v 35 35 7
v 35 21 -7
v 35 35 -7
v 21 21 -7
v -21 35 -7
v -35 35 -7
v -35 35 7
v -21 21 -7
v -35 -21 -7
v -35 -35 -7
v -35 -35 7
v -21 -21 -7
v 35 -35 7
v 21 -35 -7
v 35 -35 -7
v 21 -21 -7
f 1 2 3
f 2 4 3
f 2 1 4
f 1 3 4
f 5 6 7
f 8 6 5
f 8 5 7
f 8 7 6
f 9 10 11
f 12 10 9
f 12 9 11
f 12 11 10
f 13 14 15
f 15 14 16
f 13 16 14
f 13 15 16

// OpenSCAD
// file: def.scad
block_size_3 = 19;
block_size_4 = 16;
block_size_5 = 14;
block_size_6 = 12.5;
block_size_7 = 11;
block_size_8 = 10;

inf = 1000;

round_radius = 1;
sticker_margin = 2.5;
sticker_round_radius = 0.75;

module _block(size) {
    minkowski() {
        cube([size - round_radius * 2, size - round_radius * 2, size - round_radius * 2], center = true);
        sphere(r = round_radius, $fn = 24);
    }
}

module _selector_0(size) {
    cube([size - 0.2, size - 0.2, size - 0.2], center = true);
}

module _sticker(size) {
    minkowski() {
        cube([size - sticker_margin * 2, size - sticker_margin * 2, 0.1], center = true);
        cylinder(r = sticker_round_radius, h = 0.1, $fn = 24);
    }
}

module _selector_corner_cw(size) {
    difference() {
        cube([size, size, size], center = true);
        rotate([0, -45, 0])
            translate([-inf, -inf, 0])
                cube([inf * 2, inf * 2, inf]);
        rotate([90, 0, 45])
            translate([-inf, -inf, 0])
                cube([inf * 2, inf * 2, inf]);
    }
}

module _selector_corner_ccw(size) {
    difference() {
        cube([size, size, size], center = true);
        rotate([45, 0, 0])
            translate([-inf, -inf, 0])
                cube([inf * 2, inf * 2, inf]);
        rotate([0, -90, -45])
            translate([-inf, -inf, 0])
                cube([inf * 2, inf * 2, inf]);
    }
}

module _selector_edge_cw(size) {
    difference() {
        cube([size, size, size], center = true);
        rotate([90, 0, 45])
            translate([-inf, -inf, 0])
                cube([inf * 2, inf * 2, inf]);
    }
}

module _selector_edge_ccw(size) {
    difference() {
        cube([size, size, size], center = true);
        rotate([0, -90, -45])
            translate([-inf, -inf, 0])
                cube([inf * 2, inf * 2, inf]);
    }
}
// main file
include <def.scad>

for (deg = [0 : 90 : 270])
    rotate([0, 0, deg])
        translate([block_size_5 * 2, block_size_5 * 2, 0])
            _selector_corner_ccw(block_size_5);
